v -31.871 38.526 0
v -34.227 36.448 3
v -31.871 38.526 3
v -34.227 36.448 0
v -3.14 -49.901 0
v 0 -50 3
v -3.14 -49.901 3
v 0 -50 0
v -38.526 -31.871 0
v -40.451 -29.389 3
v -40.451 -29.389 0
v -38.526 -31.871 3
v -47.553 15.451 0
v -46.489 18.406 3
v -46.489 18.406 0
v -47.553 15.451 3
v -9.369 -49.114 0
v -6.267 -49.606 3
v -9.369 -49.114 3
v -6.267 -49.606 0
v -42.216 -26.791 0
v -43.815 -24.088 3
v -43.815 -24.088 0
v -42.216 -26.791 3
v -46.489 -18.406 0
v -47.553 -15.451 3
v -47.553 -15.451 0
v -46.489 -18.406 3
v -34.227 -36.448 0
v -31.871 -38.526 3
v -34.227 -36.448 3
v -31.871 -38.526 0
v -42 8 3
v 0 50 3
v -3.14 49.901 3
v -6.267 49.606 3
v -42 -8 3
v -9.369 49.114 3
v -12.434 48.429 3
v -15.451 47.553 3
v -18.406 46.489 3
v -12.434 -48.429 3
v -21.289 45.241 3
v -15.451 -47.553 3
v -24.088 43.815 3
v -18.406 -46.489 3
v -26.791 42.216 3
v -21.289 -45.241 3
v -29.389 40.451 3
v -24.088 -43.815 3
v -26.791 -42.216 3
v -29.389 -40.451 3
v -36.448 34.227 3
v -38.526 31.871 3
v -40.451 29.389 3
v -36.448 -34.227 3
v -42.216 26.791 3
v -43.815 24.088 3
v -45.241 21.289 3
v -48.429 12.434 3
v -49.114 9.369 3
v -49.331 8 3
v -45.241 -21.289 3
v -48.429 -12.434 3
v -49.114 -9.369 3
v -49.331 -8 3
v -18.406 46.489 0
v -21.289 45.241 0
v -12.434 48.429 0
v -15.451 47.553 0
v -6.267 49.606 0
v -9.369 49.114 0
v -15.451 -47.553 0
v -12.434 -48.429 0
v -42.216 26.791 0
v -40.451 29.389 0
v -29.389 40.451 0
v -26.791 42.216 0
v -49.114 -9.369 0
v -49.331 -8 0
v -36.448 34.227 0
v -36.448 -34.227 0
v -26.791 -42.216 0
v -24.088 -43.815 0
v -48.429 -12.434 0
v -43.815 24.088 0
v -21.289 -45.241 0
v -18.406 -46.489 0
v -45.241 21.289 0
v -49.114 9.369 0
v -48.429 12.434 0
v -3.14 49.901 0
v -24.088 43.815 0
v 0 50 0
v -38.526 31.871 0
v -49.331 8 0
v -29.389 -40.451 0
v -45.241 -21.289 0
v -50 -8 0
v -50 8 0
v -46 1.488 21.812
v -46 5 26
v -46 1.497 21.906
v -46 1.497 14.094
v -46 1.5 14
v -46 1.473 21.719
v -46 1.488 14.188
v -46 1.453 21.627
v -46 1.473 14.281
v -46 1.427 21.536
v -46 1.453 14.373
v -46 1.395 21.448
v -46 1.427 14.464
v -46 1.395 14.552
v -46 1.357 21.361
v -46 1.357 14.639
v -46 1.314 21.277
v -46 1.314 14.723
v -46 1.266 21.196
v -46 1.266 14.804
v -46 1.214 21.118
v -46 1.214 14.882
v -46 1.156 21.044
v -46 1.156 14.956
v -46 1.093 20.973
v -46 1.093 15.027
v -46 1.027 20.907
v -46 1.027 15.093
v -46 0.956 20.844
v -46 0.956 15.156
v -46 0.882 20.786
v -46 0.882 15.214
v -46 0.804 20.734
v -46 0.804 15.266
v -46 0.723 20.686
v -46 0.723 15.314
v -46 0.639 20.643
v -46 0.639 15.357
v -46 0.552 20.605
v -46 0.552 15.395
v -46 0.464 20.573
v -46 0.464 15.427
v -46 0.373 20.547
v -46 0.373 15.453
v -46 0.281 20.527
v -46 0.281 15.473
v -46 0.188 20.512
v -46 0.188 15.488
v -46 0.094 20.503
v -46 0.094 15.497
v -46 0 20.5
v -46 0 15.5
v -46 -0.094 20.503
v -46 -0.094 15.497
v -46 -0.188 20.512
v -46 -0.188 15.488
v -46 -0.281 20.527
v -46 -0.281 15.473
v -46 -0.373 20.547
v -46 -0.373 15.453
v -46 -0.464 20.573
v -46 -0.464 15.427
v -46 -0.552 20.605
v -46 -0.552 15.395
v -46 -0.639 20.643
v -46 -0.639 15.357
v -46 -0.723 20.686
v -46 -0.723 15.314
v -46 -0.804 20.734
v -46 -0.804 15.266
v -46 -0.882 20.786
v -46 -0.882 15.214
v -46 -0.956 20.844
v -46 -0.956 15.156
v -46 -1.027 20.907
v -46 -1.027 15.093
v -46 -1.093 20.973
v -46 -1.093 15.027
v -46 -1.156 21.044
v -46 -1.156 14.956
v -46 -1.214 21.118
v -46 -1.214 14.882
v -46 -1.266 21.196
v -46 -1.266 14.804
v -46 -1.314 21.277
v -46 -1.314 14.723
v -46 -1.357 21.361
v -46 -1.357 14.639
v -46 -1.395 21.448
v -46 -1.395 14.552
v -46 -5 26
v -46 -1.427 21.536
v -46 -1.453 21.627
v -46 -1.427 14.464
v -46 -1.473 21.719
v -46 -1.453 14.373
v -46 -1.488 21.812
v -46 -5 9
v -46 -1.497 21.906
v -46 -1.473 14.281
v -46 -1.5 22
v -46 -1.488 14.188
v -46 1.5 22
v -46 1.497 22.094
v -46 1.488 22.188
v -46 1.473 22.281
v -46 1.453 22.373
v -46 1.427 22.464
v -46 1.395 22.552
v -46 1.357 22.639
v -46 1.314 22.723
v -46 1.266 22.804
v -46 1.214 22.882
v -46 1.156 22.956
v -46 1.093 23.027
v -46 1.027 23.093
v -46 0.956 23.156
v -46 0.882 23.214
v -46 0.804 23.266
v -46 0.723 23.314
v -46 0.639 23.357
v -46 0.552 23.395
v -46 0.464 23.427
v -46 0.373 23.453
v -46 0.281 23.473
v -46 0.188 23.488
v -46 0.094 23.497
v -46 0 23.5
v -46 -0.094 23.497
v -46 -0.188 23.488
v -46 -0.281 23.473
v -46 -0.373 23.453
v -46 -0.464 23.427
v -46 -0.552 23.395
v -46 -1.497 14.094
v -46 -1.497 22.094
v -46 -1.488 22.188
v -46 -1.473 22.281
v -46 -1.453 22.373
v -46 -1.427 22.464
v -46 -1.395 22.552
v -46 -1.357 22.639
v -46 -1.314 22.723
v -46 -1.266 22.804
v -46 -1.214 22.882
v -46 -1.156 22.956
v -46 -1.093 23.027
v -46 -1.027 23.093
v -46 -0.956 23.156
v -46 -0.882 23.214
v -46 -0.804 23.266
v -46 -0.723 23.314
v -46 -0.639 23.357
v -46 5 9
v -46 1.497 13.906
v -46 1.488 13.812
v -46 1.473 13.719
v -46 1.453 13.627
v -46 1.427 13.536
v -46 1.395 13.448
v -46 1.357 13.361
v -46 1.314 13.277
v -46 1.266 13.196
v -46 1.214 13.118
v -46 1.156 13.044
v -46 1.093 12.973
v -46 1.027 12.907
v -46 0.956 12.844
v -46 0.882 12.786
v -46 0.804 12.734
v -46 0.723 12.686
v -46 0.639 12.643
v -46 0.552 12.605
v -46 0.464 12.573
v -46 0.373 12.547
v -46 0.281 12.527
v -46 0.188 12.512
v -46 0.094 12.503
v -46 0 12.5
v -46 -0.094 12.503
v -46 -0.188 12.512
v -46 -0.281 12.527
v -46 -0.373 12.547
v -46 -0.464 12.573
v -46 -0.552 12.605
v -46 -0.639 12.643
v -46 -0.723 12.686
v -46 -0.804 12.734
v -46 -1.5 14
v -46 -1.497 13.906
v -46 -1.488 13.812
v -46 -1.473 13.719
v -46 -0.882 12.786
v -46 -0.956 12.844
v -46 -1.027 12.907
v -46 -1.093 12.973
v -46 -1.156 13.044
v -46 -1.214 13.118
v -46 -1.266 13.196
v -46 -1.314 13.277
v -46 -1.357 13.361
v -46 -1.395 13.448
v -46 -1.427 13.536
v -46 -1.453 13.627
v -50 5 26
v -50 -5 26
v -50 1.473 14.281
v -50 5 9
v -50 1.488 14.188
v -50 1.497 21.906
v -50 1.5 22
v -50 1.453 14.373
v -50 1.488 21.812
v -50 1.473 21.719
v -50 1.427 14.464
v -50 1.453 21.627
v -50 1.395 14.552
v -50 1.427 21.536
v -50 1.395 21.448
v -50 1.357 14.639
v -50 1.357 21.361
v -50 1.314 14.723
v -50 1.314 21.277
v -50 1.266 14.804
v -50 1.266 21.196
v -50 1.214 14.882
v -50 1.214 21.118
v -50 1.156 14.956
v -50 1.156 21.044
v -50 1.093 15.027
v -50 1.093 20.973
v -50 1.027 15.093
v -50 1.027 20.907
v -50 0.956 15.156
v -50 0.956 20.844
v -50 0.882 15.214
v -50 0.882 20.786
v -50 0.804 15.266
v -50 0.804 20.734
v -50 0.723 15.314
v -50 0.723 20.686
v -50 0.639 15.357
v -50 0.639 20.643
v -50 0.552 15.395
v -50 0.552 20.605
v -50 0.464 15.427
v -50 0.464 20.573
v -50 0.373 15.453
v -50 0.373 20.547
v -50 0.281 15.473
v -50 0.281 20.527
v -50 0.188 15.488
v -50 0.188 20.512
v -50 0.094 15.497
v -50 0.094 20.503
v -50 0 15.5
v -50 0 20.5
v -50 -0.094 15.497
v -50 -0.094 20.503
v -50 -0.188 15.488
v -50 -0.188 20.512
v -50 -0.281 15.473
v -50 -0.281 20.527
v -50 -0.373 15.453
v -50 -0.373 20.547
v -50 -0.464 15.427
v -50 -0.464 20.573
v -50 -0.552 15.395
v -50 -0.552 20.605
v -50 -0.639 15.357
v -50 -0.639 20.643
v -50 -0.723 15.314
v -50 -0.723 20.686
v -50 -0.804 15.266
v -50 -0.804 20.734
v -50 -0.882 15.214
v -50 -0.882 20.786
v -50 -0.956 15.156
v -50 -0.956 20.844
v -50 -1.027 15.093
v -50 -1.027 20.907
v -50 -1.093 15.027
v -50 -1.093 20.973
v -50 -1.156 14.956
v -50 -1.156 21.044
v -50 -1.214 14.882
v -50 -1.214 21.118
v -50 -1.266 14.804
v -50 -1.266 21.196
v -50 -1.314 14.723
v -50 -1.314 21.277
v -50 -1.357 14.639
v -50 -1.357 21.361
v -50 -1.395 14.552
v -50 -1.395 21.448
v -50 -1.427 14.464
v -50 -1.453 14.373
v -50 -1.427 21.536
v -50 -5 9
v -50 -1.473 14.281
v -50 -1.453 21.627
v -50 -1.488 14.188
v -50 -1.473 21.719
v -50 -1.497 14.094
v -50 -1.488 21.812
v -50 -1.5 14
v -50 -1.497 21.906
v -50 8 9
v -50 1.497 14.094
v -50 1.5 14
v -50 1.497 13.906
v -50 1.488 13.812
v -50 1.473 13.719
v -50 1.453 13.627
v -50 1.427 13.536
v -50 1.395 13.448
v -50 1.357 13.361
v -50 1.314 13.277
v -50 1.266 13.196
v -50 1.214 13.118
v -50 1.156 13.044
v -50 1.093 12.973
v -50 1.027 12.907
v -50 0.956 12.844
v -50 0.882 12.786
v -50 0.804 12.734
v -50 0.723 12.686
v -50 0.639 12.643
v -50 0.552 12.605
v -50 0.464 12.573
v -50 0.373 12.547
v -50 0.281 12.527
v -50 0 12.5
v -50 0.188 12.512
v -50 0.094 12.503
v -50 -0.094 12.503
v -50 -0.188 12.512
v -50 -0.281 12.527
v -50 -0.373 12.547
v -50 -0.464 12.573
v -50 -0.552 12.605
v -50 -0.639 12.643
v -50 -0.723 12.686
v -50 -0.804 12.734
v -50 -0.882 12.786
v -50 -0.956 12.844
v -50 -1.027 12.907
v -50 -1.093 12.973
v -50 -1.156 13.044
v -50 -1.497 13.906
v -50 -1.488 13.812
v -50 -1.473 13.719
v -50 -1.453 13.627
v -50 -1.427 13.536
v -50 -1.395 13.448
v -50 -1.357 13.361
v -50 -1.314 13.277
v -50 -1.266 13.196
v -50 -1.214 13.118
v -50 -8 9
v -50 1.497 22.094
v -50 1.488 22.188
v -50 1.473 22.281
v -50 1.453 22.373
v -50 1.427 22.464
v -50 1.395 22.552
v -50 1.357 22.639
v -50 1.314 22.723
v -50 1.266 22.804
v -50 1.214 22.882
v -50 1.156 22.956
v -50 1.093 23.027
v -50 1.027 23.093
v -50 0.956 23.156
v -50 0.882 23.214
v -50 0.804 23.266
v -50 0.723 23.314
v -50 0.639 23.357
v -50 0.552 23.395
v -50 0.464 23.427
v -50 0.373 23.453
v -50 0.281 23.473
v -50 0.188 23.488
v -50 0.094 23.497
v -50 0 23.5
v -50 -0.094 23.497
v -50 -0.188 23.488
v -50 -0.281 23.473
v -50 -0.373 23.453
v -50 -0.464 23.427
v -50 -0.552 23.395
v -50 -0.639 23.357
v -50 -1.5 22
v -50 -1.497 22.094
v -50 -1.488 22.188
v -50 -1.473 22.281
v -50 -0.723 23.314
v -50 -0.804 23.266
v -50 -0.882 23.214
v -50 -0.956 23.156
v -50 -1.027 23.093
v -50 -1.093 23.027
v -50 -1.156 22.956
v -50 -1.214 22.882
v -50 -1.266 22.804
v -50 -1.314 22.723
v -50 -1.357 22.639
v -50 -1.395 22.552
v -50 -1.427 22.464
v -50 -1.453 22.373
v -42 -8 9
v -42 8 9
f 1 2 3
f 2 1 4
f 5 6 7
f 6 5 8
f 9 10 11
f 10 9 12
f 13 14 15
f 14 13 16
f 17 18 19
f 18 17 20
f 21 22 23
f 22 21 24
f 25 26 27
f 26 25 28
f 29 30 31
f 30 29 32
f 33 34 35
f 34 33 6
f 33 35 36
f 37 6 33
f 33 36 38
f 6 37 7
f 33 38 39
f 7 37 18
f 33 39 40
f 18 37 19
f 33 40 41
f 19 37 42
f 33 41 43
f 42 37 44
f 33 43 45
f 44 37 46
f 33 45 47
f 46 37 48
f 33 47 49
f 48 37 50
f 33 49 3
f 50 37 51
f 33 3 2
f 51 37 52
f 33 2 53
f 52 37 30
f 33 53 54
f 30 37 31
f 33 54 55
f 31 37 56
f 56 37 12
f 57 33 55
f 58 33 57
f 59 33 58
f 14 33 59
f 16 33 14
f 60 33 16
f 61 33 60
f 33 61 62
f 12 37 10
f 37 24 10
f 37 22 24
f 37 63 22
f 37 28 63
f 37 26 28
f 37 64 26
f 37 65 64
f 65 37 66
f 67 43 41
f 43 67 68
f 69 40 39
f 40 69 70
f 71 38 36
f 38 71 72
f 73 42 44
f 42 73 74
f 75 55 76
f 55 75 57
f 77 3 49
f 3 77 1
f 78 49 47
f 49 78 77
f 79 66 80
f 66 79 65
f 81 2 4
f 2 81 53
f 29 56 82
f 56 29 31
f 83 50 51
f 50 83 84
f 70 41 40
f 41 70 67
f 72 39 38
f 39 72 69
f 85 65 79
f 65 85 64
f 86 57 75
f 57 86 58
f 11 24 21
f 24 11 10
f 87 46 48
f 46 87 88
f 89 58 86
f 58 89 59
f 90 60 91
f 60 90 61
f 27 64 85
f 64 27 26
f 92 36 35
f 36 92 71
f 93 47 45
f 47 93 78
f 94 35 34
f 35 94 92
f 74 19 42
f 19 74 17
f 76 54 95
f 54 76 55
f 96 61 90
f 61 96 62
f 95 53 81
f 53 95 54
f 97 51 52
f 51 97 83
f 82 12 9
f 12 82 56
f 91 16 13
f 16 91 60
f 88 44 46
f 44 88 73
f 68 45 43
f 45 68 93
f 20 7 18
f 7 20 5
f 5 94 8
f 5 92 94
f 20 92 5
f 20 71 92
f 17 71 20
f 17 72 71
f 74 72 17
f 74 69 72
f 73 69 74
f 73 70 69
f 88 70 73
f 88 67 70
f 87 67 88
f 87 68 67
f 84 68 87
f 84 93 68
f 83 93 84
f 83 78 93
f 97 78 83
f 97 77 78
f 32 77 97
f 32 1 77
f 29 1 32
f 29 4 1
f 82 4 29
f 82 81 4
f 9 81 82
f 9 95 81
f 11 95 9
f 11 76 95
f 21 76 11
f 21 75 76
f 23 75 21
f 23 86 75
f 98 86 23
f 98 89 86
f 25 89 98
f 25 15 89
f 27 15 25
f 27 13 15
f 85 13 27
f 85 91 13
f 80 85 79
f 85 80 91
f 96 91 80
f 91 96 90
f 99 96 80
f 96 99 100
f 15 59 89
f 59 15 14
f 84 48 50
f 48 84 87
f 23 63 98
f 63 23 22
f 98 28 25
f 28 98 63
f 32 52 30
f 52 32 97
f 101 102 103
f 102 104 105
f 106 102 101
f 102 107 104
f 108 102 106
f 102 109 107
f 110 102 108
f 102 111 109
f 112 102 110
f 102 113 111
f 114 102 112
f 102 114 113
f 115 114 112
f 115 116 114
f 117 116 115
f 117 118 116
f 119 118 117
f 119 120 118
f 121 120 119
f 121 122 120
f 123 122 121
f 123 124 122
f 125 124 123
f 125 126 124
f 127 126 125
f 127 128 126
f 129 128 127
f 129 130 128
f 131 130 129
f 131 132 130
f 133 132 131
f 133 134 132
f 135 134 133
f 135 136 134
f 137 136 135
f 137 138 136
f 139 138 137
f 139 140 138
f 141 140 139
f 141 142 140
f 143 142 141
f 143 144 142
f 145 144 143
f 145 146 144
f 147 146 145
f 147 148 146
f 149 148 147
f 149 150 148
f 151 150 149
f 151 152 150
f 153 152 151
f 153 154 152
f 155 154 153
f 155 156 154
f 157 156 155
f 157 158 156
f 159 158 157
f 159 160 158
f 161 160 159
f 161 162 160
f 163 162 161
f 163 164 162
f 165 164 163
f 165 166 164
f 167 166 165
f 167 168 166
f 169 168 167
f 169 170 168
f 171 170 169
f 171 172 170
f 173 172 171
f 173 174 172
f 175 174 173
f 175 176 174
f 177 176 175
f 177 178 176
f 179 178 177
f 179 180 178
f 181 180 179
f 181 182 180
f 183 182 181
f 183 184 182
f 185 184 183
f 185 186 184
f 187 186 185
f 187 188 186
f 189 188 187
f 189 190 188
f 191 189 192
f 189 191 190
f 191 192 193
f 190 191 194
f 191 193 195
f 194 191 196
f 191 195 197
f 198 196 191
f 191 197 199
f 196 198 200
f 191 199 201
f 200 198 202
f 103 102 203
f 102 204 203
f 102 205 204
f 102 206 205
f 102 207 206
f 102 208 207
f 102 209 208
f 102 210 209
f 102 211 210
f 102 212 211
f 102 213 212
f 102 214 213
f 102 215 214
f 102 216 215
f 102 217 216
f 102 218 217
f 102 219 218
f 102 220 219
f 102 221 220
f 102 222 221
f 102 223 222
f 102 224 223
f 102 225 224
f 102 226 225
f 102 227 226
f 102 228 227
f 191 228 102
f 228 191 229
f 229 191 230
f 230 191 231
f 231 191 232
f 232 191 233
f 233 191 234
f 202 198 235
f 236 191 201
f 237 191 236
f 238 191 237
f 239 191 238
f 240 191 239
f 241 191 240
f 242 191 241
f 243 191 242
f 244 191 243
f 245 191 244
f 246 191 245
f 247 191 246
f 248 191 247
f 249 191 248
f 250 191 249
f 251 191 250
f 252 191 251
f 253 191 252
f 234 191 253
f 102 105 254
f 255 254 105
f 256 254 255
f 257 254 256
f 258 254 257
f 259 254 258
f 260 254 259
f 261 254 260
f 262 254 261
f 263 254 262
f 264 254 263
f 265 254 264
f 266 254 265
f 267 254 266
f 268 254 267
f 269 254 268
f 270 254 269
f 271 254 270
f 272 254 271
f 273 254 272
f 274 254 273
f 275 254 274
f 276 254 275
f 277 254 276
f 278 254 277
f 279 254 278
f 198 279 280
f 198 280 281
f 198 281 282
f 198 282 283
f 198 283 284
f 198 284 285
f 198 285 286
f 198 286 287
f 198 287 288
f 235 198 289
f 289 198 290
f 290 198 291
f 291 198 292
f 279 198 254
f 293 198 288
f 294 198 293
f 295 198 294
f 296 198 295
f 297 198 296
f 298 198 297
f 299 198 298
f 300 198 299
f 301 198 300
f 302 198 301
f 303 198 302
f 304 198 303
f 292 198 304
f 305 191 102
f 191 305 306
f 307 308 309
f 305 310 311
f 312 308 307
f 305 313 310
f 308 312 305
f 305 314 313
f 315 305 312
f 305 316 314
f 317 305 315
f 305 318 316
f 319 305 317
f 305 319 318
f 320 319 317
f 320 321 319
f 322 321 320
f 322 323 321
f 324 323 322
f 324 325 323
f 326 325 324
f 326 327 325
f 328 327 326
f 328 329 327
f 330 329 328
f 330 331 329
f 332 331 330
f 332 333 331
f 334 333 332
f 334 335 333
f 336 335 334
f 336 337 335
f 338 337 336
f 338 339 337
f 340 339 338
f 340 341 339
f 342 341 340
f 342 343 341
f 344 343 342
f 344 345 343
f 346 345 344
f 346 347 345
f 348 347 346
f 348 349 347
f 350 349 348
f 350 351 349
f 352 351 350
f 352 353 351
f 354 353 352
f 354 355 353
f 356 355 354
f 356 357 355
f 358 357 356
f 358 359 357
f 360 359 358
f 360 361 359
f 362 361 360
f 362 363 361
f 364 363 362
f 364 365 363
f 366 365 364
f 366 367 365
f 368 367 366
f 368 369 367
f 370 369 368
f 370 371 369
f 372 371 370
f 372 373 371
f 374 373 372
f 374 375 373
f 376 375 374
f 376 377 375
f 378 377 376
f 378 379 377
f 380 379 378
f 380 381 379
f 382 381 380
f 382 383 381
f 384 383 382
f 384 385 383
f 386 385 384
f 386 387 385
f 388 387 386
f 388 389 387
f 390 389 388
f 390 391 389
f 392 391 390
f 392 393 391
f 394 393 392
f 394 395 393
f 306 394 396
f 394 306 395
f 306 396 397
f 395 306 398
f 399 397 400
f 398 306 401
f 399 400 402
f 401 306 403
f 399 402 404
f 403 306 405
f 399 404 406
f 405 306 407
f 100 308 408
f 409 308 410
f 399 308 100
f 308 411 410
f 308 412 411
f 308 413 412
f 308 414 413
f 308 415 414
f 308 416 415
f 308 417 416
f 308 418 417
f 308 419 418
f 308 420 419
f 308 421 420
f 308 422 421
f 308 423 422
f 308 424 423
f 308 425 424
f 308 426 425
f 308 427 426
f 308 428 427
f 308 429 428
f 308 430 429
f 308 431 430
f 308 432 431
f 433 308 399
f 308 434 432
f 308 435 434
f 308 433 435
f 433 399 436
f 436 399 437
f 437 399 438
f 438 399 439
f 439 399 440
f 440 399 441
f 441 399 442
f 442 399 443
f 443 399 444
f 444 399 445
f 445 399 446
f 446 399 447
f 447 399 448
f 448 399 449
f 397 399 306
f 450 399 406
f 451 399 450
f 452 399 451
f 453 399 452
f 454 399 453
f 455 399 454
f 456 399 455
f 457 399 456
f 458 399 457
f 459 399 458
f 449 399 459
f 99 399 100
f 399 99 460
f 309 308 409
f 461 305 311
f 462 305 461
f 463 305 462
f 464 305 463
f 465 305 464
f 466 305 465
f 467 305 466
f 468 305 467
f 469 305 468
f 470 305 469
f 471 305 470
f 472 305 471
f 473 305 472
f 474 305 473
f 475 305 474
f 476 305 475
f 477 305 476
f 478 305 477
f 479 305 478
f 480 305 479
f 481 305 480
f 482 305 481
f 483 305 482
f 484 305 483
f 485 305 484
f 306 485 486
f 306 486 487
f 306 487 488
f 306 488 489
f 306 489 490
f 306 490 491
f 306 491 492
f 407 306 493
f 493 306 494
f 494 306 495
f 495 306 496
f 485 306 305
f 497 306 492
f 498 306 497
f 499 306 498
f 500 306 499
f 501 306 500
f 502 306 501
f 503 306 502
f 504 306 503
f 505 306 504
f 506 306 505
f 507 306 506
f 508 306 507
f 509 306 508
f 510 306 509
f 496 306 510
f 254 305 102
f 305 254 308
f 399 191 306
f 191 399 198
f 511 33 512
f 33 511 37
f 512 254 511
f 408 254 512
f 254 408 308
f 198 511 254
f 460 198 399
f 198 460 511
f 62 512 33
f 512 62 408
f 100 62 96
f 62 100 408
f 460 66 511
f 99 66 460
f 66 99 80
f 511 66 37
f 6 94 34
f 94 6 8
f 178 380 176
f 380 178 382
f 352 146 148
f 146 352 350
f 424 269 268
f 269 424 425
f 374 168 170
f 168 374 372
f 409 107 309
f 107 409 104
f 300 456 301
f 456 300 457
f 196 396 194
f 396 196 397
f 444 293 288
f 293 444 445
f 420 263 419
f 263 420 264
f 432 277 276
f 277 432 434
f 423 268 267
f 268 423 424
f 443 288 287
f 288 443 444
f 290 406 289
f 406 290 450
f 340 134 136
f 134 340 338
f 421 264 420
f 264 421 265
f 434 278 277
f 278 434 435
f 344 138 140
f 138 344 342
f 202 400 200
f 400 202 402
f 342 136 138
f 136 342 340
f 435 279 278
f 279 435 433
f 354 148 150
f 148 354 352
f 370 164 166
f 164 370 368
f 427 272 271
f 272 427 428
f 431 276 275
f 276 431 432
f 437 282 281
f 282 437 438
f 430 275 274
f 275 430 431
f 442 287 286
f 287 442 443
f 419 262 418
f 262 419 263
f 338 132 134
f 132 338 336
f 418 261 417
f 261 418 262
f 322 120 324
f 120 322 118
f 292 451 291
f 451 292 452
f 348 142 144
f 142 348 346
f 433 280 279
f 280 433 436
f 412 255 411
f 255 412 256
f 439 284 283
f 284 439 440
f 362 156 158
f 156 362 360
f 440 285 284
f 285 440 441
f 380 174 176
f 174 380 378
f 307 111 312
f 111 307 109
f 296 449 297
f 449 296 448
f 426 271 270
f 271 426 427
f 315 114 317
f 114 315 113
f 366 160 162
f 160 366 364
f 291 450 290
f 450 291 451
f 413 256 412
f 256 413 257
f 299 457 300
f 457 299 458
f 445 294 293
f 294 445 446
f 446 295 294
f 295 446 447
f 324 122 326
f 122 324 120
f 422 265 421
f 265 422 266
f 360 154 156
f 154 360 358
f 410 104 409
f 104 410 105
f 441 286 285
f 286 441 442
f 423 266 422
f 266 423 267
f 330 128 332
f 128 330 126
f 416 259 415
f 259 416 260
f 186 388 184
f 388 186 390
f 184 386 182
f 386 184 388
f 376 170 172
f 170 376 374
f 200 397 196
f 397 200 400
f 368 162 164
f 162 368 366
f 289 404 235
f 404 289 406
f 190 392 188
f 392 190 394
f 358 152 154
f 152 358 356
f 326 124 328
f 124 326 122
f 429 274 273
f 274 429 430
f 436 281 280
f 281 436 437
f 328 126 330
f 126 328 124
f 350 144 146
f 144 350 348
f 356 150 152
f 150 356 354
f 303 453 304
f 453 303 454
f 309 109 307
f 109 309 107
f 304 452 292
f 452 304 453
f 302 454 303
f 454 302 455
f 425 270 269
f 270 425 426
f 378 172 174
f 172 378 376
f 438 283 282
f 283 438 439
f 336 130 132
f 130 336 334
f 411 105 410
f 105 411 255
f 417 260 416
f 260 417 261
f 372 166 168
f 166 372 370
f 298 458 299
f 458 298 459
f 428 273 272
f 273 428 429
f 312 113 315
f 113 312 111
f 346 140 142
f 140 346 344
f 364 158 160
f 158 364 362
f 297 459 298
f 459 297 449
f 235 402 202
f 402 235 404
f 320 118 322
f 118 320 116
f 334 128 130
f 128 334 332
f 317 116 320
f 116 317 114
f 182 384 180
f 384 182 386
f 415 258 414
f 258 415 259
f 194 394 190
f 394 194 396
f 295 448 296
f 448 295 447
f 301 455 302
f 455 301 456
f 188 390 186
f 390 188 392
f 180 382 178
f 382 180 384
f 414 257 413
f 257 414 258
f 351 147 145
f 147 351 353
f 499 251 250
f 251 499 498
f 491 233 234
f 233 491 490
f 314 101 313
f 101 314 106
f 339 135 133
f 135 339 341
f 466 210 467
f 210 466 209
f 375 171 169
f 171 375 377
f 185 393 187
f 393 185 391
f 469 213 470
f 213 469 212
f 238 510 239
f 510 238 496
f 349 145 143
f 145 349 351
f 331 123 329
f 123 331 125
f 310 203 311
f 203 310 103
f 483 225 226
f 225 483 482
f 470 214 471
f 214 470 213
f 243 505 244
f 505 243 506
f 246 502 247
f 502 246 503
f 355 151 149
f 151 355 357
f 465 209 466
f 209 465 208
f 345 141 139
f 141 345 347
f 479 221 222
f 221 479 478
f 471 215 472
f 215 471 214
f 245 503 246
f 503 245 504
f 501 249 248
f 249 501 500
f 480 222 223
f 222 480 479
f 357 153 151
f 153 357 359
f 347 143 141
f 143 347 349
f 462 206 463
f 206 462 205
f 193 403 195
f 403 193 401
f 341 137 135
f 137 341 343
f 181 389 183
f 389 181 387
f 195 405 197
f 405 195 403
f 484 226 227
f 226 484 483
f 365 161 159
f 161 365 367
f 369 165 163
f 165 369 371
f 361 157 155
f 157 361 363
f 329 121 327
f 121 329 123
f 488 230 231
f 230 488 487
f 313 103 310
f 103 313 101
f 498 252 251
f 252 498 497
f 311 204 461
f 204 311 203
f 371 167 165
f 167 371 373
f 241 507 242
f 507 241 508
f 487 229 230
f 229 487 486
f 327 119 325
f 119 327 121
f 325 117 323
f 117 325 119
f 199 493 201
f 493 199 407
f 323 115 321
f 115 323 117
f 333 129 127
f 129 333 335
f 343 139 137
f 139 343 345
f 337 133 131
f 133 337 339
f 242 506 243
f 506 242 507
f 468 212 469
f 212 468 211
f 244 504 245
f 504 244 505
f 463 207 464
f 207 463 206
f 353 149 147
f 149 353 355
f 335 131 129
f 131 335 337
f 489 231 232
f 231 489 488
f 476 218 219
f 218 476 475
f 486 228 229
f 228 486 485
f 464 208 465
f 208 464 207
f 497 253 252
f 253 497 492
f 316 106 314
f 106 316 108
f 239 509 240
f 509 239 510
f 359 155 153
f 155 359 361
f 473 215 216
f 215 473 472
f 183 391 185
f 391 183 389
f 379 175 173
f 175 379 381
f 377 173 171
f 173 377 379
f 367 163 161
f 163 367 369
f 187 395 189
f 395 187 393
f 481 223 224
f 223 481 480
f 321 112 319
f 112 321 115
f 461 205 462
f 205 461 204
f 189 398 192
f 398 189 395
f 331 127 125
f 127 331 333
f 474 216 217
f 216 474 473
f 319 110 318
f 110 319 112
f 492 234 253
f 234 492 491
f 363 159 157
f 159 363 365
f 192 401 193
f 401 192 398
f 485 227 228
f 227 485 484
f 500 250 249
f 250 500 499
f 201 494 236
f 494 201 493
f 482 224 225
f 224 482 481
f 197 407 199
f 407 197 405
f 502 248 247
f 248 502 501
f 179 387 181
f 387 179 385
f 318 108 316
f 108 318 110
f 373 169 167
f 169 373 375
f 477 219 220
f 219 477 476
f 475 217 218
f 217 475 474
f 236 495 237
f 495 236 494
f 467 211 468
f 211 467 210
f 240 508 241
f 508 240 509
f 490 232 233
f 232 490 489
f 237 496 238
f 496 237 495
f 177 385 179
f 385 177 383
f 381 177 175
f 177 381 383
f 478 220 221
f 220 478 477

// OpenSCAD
difference() {
union() {

  cylinder(h=3, r=100/2, $fn=100, center=false);
  translate([-50, -5, 0])
        cube([4, 10, 26]);    
  translate([-50, -8, 0])
        cube([8, 16, 9]);

}

  translate([0, -100, -1])
        cube([1000, 200, 6]);
    translate([-100,0,14]){
        rotate([0,90,0]){
            cylinder(h=500, r=1.5, $fn=100, center=false);
        }
    }    
    translate([-100,0,22]){
        rotate([0,90,0]){
            cylinder(h=500, r=1.5, $fn=100, center=false);
        }
    }    

}
